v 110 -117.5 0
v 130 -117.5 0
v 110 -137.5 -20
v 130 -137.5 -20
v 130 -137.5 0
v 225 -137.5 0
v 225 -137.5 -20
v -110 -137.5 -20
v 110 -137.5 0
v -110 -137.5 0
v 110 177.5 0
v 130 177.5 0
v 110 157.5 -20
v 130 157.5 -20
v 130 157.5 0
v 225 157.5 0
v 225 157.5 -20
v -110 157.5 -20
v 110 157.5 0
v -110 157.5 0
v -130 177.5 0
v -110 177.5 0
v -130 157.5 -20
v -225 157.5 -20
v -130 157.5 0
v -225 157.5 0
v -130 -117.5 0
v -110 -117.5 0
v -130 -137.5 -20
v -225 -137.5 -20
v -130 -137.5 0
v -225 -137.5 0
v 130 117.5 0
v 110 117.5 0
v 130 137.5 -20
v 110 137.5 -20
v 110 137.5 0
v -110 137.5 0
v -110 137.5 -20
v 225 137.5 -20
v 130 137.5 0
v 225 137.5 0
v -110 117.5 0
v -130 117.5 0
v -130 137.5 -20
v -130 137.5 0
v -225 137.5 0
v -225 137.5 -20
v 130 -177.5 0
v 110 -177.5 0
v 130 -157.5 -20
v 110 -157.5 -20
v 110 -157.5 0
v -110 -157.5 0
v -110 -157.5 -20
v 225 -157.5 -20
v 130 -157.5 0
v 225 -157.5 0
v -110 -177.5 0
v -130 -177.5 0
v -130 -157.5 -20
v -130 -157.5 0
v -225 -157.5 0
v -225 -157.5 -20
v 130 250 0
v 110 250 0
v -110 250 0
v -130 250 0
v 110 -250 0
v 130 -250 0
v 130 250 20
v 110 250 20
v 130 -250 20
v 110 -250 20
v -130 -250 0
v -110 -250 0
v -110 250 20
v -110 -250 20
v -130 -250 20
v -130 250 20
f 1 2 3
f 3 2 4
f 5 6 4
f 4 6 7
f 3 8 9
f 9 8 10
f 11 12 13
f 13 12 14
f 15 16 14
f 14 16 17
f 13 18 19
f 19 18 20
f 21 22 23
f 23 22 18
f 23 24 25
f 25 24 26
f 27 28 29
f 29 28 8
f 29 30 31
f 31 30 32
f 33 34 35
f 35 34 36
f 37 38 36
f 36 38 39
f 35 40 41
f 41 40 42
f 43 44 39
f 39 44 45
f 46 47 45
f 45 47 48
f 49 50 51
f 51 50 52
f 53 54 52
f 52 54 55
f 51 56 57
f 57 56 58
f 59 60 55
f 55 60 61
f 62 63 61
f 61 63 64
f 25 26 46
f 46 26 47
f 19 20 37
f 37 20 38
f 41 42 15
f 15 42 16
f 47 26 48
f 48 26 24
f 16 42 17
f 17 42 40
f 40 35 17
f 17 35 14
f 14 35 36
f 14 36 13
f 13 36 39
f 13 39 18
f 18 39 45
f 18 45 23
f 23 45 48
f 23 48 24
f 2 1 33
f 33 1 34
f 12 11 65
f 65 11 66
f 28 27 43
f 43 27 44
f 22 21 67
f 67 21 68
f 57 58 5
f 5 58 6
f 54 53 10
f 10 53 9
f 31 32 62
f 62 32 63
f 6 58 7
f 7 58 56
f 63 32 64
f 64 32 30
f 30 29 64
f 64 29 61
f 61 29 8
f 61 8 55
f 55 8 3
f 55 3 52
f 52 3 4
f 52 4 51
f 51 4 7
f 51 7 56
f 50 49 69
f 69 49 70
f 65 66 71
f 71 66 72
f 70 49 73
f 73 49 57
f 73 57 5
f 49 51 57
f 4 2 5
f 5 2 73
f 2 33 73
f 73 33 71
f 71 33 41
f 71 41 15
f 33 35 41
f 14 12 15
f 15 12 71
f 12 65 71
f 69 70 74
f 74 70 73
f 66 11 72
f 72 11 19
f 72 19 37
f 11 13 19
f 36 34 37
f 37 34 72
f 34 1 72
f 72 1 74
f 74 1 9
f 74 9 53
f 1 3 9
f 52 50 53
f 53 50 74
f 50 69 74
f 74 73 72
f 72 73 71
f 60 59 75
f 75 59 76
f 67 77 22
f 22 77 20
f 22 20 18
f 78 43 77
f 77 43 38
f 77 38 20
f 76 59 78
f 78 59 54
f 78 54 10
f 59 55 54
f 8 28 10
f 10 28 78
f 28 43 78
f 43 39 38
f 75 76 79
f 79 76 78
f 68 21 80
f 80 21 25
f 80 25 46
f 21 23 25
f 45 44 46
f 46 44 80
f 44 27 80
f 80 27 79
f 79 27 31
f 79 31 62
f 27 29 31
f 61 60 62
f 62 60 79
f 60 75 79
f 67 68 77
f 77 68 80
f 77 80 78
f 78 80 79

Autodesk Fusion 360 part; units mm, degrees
sketch "草图1" plane through (0, 0, 0) normal (0, 0, 1) x (1, 0, 0)
  line L0 (110, -137.5) -> (-110, -137.5)
  line L1 (-110, -137.5) -> (-110, 137.5)
  line L2 (-110, 137.5) -> (110, 137.5)
  line L3 (110, 137.5) -> (110, -137.5)
  line L4 (110, -137.5) -> (-110, 137.5) construction
  line L5 (-110, -137.5) -> (110, 137.5) construction
  line L6 (130, -157.5) -> (-130, -157.5)
  line L7 (-130, -157.5) -> (-130, 157.5)
  line L8 (-130, 157.5) -> (130, 157.5)
  line L9 (130, 157.5) -> (130, -157.5)
  line L10 (130, -157.5) -> (-130, 157.5) construction
  line L11 (-130, -157.5) -> (130, 157.5) construction
  line L12 (110, 137.5) -> (225, 137.5)
  line L13 (225, 137.5) -> (-225, 137.5)
  line L14 (0, 0) -> (0, 157.5) construction
  line L15 (0, 0) -> (0, -157.5) construction
  line L16 (-110, 137.5) -> (-110, 250)
  line L17 (-110, 250) -> (-110, -250)
  line L18 (0, 0) -> (-130, 0) construction
  line L19 (-225, 250) -> (225, 250)
  line L20 (225, 250) -> (225, -250)
  line L21 (225, -250) -> (-225, -250)
  line L22 (-225, -250) -> (-225, 250)
  line L23 (-225, 250) -> (225, -250) construction
  line L24 (225, 250) -> (-225, -250) construction
  line L25 (-130, 250) -> (-130, -250)
  line L26 (225, -157.5) -> (-225, -157.5)
  line L27 (-225, -137.5) -> (225, -137.5)
  line L28 (110, 250) -> (110, -250)
  line L29 (130, -250) -> (130, 250)
  line L30 (225, 157.5) -> (-225, 157.5)
  point P0 (-110, 0)
  dimension "d1" = 220
  dimension "d2" = 275
  dimension "d3" = 20
  dimension "d4" = 20
  dimension "d5" = 450
  dimension "d6" = 95
  dimension "d7" = 95
  dimension "d8" = 500
  dimension "d9" = 92.5
extrude "拉伸1" add sketch "草图1" along normal blind 20 contours L3 L9 L12 L13 L27 L28 L29 | L6 L9 L26 L27 L28 L29 | L1 L7 L13 L17 L25 L27 | L6 L7 L17 L25 L26 L27 | L8 L9 L12 L13 L28 L29 L30 | L6 L21 L26 L28 L29 | L7 L8 L13 L16 L17 L25 L30 | L6 L17 L21 L25 L26 | L8 L19 L28 L29 L30 | L8 L16 L17 L19 L25 L30 makes body 1 at (-110, 83.3333, 6.6667) makes body 2 at (130, 83.3333, 6.6667)
extrude "拉伸2" add sketch "草图1" against normal blind 20 contours L0 L6 L17 L26 L27 L28 | L6 L9 L26 L27 L28 L29 | L6 L7 L17 L25 L26 L27 | L8 L9 L12 L13 L28 L29 L30 | L2 L8 L13 L16 L17 L28 L30 | L9 L20 L26 L27 L29 | L7 L8 L13 L16 L17 L25 L30 | L7 L22 L25 L26 L27 | L9 L12 L13 L20 L29 L30 | L7 L13 L22 L25 L30 bodies 1 2
chamfer "倒角1" distance 20 angle 45 8 edges at (-120, -157.5, 0) (120, -157.5, 0) (-120, 137.5, 0) (120, 137.5, 0) (-120, -137.5, 0) (-120, 157.5, 0) (120, 157.5, 0) (120, -137.5, 0) on bodies 1
